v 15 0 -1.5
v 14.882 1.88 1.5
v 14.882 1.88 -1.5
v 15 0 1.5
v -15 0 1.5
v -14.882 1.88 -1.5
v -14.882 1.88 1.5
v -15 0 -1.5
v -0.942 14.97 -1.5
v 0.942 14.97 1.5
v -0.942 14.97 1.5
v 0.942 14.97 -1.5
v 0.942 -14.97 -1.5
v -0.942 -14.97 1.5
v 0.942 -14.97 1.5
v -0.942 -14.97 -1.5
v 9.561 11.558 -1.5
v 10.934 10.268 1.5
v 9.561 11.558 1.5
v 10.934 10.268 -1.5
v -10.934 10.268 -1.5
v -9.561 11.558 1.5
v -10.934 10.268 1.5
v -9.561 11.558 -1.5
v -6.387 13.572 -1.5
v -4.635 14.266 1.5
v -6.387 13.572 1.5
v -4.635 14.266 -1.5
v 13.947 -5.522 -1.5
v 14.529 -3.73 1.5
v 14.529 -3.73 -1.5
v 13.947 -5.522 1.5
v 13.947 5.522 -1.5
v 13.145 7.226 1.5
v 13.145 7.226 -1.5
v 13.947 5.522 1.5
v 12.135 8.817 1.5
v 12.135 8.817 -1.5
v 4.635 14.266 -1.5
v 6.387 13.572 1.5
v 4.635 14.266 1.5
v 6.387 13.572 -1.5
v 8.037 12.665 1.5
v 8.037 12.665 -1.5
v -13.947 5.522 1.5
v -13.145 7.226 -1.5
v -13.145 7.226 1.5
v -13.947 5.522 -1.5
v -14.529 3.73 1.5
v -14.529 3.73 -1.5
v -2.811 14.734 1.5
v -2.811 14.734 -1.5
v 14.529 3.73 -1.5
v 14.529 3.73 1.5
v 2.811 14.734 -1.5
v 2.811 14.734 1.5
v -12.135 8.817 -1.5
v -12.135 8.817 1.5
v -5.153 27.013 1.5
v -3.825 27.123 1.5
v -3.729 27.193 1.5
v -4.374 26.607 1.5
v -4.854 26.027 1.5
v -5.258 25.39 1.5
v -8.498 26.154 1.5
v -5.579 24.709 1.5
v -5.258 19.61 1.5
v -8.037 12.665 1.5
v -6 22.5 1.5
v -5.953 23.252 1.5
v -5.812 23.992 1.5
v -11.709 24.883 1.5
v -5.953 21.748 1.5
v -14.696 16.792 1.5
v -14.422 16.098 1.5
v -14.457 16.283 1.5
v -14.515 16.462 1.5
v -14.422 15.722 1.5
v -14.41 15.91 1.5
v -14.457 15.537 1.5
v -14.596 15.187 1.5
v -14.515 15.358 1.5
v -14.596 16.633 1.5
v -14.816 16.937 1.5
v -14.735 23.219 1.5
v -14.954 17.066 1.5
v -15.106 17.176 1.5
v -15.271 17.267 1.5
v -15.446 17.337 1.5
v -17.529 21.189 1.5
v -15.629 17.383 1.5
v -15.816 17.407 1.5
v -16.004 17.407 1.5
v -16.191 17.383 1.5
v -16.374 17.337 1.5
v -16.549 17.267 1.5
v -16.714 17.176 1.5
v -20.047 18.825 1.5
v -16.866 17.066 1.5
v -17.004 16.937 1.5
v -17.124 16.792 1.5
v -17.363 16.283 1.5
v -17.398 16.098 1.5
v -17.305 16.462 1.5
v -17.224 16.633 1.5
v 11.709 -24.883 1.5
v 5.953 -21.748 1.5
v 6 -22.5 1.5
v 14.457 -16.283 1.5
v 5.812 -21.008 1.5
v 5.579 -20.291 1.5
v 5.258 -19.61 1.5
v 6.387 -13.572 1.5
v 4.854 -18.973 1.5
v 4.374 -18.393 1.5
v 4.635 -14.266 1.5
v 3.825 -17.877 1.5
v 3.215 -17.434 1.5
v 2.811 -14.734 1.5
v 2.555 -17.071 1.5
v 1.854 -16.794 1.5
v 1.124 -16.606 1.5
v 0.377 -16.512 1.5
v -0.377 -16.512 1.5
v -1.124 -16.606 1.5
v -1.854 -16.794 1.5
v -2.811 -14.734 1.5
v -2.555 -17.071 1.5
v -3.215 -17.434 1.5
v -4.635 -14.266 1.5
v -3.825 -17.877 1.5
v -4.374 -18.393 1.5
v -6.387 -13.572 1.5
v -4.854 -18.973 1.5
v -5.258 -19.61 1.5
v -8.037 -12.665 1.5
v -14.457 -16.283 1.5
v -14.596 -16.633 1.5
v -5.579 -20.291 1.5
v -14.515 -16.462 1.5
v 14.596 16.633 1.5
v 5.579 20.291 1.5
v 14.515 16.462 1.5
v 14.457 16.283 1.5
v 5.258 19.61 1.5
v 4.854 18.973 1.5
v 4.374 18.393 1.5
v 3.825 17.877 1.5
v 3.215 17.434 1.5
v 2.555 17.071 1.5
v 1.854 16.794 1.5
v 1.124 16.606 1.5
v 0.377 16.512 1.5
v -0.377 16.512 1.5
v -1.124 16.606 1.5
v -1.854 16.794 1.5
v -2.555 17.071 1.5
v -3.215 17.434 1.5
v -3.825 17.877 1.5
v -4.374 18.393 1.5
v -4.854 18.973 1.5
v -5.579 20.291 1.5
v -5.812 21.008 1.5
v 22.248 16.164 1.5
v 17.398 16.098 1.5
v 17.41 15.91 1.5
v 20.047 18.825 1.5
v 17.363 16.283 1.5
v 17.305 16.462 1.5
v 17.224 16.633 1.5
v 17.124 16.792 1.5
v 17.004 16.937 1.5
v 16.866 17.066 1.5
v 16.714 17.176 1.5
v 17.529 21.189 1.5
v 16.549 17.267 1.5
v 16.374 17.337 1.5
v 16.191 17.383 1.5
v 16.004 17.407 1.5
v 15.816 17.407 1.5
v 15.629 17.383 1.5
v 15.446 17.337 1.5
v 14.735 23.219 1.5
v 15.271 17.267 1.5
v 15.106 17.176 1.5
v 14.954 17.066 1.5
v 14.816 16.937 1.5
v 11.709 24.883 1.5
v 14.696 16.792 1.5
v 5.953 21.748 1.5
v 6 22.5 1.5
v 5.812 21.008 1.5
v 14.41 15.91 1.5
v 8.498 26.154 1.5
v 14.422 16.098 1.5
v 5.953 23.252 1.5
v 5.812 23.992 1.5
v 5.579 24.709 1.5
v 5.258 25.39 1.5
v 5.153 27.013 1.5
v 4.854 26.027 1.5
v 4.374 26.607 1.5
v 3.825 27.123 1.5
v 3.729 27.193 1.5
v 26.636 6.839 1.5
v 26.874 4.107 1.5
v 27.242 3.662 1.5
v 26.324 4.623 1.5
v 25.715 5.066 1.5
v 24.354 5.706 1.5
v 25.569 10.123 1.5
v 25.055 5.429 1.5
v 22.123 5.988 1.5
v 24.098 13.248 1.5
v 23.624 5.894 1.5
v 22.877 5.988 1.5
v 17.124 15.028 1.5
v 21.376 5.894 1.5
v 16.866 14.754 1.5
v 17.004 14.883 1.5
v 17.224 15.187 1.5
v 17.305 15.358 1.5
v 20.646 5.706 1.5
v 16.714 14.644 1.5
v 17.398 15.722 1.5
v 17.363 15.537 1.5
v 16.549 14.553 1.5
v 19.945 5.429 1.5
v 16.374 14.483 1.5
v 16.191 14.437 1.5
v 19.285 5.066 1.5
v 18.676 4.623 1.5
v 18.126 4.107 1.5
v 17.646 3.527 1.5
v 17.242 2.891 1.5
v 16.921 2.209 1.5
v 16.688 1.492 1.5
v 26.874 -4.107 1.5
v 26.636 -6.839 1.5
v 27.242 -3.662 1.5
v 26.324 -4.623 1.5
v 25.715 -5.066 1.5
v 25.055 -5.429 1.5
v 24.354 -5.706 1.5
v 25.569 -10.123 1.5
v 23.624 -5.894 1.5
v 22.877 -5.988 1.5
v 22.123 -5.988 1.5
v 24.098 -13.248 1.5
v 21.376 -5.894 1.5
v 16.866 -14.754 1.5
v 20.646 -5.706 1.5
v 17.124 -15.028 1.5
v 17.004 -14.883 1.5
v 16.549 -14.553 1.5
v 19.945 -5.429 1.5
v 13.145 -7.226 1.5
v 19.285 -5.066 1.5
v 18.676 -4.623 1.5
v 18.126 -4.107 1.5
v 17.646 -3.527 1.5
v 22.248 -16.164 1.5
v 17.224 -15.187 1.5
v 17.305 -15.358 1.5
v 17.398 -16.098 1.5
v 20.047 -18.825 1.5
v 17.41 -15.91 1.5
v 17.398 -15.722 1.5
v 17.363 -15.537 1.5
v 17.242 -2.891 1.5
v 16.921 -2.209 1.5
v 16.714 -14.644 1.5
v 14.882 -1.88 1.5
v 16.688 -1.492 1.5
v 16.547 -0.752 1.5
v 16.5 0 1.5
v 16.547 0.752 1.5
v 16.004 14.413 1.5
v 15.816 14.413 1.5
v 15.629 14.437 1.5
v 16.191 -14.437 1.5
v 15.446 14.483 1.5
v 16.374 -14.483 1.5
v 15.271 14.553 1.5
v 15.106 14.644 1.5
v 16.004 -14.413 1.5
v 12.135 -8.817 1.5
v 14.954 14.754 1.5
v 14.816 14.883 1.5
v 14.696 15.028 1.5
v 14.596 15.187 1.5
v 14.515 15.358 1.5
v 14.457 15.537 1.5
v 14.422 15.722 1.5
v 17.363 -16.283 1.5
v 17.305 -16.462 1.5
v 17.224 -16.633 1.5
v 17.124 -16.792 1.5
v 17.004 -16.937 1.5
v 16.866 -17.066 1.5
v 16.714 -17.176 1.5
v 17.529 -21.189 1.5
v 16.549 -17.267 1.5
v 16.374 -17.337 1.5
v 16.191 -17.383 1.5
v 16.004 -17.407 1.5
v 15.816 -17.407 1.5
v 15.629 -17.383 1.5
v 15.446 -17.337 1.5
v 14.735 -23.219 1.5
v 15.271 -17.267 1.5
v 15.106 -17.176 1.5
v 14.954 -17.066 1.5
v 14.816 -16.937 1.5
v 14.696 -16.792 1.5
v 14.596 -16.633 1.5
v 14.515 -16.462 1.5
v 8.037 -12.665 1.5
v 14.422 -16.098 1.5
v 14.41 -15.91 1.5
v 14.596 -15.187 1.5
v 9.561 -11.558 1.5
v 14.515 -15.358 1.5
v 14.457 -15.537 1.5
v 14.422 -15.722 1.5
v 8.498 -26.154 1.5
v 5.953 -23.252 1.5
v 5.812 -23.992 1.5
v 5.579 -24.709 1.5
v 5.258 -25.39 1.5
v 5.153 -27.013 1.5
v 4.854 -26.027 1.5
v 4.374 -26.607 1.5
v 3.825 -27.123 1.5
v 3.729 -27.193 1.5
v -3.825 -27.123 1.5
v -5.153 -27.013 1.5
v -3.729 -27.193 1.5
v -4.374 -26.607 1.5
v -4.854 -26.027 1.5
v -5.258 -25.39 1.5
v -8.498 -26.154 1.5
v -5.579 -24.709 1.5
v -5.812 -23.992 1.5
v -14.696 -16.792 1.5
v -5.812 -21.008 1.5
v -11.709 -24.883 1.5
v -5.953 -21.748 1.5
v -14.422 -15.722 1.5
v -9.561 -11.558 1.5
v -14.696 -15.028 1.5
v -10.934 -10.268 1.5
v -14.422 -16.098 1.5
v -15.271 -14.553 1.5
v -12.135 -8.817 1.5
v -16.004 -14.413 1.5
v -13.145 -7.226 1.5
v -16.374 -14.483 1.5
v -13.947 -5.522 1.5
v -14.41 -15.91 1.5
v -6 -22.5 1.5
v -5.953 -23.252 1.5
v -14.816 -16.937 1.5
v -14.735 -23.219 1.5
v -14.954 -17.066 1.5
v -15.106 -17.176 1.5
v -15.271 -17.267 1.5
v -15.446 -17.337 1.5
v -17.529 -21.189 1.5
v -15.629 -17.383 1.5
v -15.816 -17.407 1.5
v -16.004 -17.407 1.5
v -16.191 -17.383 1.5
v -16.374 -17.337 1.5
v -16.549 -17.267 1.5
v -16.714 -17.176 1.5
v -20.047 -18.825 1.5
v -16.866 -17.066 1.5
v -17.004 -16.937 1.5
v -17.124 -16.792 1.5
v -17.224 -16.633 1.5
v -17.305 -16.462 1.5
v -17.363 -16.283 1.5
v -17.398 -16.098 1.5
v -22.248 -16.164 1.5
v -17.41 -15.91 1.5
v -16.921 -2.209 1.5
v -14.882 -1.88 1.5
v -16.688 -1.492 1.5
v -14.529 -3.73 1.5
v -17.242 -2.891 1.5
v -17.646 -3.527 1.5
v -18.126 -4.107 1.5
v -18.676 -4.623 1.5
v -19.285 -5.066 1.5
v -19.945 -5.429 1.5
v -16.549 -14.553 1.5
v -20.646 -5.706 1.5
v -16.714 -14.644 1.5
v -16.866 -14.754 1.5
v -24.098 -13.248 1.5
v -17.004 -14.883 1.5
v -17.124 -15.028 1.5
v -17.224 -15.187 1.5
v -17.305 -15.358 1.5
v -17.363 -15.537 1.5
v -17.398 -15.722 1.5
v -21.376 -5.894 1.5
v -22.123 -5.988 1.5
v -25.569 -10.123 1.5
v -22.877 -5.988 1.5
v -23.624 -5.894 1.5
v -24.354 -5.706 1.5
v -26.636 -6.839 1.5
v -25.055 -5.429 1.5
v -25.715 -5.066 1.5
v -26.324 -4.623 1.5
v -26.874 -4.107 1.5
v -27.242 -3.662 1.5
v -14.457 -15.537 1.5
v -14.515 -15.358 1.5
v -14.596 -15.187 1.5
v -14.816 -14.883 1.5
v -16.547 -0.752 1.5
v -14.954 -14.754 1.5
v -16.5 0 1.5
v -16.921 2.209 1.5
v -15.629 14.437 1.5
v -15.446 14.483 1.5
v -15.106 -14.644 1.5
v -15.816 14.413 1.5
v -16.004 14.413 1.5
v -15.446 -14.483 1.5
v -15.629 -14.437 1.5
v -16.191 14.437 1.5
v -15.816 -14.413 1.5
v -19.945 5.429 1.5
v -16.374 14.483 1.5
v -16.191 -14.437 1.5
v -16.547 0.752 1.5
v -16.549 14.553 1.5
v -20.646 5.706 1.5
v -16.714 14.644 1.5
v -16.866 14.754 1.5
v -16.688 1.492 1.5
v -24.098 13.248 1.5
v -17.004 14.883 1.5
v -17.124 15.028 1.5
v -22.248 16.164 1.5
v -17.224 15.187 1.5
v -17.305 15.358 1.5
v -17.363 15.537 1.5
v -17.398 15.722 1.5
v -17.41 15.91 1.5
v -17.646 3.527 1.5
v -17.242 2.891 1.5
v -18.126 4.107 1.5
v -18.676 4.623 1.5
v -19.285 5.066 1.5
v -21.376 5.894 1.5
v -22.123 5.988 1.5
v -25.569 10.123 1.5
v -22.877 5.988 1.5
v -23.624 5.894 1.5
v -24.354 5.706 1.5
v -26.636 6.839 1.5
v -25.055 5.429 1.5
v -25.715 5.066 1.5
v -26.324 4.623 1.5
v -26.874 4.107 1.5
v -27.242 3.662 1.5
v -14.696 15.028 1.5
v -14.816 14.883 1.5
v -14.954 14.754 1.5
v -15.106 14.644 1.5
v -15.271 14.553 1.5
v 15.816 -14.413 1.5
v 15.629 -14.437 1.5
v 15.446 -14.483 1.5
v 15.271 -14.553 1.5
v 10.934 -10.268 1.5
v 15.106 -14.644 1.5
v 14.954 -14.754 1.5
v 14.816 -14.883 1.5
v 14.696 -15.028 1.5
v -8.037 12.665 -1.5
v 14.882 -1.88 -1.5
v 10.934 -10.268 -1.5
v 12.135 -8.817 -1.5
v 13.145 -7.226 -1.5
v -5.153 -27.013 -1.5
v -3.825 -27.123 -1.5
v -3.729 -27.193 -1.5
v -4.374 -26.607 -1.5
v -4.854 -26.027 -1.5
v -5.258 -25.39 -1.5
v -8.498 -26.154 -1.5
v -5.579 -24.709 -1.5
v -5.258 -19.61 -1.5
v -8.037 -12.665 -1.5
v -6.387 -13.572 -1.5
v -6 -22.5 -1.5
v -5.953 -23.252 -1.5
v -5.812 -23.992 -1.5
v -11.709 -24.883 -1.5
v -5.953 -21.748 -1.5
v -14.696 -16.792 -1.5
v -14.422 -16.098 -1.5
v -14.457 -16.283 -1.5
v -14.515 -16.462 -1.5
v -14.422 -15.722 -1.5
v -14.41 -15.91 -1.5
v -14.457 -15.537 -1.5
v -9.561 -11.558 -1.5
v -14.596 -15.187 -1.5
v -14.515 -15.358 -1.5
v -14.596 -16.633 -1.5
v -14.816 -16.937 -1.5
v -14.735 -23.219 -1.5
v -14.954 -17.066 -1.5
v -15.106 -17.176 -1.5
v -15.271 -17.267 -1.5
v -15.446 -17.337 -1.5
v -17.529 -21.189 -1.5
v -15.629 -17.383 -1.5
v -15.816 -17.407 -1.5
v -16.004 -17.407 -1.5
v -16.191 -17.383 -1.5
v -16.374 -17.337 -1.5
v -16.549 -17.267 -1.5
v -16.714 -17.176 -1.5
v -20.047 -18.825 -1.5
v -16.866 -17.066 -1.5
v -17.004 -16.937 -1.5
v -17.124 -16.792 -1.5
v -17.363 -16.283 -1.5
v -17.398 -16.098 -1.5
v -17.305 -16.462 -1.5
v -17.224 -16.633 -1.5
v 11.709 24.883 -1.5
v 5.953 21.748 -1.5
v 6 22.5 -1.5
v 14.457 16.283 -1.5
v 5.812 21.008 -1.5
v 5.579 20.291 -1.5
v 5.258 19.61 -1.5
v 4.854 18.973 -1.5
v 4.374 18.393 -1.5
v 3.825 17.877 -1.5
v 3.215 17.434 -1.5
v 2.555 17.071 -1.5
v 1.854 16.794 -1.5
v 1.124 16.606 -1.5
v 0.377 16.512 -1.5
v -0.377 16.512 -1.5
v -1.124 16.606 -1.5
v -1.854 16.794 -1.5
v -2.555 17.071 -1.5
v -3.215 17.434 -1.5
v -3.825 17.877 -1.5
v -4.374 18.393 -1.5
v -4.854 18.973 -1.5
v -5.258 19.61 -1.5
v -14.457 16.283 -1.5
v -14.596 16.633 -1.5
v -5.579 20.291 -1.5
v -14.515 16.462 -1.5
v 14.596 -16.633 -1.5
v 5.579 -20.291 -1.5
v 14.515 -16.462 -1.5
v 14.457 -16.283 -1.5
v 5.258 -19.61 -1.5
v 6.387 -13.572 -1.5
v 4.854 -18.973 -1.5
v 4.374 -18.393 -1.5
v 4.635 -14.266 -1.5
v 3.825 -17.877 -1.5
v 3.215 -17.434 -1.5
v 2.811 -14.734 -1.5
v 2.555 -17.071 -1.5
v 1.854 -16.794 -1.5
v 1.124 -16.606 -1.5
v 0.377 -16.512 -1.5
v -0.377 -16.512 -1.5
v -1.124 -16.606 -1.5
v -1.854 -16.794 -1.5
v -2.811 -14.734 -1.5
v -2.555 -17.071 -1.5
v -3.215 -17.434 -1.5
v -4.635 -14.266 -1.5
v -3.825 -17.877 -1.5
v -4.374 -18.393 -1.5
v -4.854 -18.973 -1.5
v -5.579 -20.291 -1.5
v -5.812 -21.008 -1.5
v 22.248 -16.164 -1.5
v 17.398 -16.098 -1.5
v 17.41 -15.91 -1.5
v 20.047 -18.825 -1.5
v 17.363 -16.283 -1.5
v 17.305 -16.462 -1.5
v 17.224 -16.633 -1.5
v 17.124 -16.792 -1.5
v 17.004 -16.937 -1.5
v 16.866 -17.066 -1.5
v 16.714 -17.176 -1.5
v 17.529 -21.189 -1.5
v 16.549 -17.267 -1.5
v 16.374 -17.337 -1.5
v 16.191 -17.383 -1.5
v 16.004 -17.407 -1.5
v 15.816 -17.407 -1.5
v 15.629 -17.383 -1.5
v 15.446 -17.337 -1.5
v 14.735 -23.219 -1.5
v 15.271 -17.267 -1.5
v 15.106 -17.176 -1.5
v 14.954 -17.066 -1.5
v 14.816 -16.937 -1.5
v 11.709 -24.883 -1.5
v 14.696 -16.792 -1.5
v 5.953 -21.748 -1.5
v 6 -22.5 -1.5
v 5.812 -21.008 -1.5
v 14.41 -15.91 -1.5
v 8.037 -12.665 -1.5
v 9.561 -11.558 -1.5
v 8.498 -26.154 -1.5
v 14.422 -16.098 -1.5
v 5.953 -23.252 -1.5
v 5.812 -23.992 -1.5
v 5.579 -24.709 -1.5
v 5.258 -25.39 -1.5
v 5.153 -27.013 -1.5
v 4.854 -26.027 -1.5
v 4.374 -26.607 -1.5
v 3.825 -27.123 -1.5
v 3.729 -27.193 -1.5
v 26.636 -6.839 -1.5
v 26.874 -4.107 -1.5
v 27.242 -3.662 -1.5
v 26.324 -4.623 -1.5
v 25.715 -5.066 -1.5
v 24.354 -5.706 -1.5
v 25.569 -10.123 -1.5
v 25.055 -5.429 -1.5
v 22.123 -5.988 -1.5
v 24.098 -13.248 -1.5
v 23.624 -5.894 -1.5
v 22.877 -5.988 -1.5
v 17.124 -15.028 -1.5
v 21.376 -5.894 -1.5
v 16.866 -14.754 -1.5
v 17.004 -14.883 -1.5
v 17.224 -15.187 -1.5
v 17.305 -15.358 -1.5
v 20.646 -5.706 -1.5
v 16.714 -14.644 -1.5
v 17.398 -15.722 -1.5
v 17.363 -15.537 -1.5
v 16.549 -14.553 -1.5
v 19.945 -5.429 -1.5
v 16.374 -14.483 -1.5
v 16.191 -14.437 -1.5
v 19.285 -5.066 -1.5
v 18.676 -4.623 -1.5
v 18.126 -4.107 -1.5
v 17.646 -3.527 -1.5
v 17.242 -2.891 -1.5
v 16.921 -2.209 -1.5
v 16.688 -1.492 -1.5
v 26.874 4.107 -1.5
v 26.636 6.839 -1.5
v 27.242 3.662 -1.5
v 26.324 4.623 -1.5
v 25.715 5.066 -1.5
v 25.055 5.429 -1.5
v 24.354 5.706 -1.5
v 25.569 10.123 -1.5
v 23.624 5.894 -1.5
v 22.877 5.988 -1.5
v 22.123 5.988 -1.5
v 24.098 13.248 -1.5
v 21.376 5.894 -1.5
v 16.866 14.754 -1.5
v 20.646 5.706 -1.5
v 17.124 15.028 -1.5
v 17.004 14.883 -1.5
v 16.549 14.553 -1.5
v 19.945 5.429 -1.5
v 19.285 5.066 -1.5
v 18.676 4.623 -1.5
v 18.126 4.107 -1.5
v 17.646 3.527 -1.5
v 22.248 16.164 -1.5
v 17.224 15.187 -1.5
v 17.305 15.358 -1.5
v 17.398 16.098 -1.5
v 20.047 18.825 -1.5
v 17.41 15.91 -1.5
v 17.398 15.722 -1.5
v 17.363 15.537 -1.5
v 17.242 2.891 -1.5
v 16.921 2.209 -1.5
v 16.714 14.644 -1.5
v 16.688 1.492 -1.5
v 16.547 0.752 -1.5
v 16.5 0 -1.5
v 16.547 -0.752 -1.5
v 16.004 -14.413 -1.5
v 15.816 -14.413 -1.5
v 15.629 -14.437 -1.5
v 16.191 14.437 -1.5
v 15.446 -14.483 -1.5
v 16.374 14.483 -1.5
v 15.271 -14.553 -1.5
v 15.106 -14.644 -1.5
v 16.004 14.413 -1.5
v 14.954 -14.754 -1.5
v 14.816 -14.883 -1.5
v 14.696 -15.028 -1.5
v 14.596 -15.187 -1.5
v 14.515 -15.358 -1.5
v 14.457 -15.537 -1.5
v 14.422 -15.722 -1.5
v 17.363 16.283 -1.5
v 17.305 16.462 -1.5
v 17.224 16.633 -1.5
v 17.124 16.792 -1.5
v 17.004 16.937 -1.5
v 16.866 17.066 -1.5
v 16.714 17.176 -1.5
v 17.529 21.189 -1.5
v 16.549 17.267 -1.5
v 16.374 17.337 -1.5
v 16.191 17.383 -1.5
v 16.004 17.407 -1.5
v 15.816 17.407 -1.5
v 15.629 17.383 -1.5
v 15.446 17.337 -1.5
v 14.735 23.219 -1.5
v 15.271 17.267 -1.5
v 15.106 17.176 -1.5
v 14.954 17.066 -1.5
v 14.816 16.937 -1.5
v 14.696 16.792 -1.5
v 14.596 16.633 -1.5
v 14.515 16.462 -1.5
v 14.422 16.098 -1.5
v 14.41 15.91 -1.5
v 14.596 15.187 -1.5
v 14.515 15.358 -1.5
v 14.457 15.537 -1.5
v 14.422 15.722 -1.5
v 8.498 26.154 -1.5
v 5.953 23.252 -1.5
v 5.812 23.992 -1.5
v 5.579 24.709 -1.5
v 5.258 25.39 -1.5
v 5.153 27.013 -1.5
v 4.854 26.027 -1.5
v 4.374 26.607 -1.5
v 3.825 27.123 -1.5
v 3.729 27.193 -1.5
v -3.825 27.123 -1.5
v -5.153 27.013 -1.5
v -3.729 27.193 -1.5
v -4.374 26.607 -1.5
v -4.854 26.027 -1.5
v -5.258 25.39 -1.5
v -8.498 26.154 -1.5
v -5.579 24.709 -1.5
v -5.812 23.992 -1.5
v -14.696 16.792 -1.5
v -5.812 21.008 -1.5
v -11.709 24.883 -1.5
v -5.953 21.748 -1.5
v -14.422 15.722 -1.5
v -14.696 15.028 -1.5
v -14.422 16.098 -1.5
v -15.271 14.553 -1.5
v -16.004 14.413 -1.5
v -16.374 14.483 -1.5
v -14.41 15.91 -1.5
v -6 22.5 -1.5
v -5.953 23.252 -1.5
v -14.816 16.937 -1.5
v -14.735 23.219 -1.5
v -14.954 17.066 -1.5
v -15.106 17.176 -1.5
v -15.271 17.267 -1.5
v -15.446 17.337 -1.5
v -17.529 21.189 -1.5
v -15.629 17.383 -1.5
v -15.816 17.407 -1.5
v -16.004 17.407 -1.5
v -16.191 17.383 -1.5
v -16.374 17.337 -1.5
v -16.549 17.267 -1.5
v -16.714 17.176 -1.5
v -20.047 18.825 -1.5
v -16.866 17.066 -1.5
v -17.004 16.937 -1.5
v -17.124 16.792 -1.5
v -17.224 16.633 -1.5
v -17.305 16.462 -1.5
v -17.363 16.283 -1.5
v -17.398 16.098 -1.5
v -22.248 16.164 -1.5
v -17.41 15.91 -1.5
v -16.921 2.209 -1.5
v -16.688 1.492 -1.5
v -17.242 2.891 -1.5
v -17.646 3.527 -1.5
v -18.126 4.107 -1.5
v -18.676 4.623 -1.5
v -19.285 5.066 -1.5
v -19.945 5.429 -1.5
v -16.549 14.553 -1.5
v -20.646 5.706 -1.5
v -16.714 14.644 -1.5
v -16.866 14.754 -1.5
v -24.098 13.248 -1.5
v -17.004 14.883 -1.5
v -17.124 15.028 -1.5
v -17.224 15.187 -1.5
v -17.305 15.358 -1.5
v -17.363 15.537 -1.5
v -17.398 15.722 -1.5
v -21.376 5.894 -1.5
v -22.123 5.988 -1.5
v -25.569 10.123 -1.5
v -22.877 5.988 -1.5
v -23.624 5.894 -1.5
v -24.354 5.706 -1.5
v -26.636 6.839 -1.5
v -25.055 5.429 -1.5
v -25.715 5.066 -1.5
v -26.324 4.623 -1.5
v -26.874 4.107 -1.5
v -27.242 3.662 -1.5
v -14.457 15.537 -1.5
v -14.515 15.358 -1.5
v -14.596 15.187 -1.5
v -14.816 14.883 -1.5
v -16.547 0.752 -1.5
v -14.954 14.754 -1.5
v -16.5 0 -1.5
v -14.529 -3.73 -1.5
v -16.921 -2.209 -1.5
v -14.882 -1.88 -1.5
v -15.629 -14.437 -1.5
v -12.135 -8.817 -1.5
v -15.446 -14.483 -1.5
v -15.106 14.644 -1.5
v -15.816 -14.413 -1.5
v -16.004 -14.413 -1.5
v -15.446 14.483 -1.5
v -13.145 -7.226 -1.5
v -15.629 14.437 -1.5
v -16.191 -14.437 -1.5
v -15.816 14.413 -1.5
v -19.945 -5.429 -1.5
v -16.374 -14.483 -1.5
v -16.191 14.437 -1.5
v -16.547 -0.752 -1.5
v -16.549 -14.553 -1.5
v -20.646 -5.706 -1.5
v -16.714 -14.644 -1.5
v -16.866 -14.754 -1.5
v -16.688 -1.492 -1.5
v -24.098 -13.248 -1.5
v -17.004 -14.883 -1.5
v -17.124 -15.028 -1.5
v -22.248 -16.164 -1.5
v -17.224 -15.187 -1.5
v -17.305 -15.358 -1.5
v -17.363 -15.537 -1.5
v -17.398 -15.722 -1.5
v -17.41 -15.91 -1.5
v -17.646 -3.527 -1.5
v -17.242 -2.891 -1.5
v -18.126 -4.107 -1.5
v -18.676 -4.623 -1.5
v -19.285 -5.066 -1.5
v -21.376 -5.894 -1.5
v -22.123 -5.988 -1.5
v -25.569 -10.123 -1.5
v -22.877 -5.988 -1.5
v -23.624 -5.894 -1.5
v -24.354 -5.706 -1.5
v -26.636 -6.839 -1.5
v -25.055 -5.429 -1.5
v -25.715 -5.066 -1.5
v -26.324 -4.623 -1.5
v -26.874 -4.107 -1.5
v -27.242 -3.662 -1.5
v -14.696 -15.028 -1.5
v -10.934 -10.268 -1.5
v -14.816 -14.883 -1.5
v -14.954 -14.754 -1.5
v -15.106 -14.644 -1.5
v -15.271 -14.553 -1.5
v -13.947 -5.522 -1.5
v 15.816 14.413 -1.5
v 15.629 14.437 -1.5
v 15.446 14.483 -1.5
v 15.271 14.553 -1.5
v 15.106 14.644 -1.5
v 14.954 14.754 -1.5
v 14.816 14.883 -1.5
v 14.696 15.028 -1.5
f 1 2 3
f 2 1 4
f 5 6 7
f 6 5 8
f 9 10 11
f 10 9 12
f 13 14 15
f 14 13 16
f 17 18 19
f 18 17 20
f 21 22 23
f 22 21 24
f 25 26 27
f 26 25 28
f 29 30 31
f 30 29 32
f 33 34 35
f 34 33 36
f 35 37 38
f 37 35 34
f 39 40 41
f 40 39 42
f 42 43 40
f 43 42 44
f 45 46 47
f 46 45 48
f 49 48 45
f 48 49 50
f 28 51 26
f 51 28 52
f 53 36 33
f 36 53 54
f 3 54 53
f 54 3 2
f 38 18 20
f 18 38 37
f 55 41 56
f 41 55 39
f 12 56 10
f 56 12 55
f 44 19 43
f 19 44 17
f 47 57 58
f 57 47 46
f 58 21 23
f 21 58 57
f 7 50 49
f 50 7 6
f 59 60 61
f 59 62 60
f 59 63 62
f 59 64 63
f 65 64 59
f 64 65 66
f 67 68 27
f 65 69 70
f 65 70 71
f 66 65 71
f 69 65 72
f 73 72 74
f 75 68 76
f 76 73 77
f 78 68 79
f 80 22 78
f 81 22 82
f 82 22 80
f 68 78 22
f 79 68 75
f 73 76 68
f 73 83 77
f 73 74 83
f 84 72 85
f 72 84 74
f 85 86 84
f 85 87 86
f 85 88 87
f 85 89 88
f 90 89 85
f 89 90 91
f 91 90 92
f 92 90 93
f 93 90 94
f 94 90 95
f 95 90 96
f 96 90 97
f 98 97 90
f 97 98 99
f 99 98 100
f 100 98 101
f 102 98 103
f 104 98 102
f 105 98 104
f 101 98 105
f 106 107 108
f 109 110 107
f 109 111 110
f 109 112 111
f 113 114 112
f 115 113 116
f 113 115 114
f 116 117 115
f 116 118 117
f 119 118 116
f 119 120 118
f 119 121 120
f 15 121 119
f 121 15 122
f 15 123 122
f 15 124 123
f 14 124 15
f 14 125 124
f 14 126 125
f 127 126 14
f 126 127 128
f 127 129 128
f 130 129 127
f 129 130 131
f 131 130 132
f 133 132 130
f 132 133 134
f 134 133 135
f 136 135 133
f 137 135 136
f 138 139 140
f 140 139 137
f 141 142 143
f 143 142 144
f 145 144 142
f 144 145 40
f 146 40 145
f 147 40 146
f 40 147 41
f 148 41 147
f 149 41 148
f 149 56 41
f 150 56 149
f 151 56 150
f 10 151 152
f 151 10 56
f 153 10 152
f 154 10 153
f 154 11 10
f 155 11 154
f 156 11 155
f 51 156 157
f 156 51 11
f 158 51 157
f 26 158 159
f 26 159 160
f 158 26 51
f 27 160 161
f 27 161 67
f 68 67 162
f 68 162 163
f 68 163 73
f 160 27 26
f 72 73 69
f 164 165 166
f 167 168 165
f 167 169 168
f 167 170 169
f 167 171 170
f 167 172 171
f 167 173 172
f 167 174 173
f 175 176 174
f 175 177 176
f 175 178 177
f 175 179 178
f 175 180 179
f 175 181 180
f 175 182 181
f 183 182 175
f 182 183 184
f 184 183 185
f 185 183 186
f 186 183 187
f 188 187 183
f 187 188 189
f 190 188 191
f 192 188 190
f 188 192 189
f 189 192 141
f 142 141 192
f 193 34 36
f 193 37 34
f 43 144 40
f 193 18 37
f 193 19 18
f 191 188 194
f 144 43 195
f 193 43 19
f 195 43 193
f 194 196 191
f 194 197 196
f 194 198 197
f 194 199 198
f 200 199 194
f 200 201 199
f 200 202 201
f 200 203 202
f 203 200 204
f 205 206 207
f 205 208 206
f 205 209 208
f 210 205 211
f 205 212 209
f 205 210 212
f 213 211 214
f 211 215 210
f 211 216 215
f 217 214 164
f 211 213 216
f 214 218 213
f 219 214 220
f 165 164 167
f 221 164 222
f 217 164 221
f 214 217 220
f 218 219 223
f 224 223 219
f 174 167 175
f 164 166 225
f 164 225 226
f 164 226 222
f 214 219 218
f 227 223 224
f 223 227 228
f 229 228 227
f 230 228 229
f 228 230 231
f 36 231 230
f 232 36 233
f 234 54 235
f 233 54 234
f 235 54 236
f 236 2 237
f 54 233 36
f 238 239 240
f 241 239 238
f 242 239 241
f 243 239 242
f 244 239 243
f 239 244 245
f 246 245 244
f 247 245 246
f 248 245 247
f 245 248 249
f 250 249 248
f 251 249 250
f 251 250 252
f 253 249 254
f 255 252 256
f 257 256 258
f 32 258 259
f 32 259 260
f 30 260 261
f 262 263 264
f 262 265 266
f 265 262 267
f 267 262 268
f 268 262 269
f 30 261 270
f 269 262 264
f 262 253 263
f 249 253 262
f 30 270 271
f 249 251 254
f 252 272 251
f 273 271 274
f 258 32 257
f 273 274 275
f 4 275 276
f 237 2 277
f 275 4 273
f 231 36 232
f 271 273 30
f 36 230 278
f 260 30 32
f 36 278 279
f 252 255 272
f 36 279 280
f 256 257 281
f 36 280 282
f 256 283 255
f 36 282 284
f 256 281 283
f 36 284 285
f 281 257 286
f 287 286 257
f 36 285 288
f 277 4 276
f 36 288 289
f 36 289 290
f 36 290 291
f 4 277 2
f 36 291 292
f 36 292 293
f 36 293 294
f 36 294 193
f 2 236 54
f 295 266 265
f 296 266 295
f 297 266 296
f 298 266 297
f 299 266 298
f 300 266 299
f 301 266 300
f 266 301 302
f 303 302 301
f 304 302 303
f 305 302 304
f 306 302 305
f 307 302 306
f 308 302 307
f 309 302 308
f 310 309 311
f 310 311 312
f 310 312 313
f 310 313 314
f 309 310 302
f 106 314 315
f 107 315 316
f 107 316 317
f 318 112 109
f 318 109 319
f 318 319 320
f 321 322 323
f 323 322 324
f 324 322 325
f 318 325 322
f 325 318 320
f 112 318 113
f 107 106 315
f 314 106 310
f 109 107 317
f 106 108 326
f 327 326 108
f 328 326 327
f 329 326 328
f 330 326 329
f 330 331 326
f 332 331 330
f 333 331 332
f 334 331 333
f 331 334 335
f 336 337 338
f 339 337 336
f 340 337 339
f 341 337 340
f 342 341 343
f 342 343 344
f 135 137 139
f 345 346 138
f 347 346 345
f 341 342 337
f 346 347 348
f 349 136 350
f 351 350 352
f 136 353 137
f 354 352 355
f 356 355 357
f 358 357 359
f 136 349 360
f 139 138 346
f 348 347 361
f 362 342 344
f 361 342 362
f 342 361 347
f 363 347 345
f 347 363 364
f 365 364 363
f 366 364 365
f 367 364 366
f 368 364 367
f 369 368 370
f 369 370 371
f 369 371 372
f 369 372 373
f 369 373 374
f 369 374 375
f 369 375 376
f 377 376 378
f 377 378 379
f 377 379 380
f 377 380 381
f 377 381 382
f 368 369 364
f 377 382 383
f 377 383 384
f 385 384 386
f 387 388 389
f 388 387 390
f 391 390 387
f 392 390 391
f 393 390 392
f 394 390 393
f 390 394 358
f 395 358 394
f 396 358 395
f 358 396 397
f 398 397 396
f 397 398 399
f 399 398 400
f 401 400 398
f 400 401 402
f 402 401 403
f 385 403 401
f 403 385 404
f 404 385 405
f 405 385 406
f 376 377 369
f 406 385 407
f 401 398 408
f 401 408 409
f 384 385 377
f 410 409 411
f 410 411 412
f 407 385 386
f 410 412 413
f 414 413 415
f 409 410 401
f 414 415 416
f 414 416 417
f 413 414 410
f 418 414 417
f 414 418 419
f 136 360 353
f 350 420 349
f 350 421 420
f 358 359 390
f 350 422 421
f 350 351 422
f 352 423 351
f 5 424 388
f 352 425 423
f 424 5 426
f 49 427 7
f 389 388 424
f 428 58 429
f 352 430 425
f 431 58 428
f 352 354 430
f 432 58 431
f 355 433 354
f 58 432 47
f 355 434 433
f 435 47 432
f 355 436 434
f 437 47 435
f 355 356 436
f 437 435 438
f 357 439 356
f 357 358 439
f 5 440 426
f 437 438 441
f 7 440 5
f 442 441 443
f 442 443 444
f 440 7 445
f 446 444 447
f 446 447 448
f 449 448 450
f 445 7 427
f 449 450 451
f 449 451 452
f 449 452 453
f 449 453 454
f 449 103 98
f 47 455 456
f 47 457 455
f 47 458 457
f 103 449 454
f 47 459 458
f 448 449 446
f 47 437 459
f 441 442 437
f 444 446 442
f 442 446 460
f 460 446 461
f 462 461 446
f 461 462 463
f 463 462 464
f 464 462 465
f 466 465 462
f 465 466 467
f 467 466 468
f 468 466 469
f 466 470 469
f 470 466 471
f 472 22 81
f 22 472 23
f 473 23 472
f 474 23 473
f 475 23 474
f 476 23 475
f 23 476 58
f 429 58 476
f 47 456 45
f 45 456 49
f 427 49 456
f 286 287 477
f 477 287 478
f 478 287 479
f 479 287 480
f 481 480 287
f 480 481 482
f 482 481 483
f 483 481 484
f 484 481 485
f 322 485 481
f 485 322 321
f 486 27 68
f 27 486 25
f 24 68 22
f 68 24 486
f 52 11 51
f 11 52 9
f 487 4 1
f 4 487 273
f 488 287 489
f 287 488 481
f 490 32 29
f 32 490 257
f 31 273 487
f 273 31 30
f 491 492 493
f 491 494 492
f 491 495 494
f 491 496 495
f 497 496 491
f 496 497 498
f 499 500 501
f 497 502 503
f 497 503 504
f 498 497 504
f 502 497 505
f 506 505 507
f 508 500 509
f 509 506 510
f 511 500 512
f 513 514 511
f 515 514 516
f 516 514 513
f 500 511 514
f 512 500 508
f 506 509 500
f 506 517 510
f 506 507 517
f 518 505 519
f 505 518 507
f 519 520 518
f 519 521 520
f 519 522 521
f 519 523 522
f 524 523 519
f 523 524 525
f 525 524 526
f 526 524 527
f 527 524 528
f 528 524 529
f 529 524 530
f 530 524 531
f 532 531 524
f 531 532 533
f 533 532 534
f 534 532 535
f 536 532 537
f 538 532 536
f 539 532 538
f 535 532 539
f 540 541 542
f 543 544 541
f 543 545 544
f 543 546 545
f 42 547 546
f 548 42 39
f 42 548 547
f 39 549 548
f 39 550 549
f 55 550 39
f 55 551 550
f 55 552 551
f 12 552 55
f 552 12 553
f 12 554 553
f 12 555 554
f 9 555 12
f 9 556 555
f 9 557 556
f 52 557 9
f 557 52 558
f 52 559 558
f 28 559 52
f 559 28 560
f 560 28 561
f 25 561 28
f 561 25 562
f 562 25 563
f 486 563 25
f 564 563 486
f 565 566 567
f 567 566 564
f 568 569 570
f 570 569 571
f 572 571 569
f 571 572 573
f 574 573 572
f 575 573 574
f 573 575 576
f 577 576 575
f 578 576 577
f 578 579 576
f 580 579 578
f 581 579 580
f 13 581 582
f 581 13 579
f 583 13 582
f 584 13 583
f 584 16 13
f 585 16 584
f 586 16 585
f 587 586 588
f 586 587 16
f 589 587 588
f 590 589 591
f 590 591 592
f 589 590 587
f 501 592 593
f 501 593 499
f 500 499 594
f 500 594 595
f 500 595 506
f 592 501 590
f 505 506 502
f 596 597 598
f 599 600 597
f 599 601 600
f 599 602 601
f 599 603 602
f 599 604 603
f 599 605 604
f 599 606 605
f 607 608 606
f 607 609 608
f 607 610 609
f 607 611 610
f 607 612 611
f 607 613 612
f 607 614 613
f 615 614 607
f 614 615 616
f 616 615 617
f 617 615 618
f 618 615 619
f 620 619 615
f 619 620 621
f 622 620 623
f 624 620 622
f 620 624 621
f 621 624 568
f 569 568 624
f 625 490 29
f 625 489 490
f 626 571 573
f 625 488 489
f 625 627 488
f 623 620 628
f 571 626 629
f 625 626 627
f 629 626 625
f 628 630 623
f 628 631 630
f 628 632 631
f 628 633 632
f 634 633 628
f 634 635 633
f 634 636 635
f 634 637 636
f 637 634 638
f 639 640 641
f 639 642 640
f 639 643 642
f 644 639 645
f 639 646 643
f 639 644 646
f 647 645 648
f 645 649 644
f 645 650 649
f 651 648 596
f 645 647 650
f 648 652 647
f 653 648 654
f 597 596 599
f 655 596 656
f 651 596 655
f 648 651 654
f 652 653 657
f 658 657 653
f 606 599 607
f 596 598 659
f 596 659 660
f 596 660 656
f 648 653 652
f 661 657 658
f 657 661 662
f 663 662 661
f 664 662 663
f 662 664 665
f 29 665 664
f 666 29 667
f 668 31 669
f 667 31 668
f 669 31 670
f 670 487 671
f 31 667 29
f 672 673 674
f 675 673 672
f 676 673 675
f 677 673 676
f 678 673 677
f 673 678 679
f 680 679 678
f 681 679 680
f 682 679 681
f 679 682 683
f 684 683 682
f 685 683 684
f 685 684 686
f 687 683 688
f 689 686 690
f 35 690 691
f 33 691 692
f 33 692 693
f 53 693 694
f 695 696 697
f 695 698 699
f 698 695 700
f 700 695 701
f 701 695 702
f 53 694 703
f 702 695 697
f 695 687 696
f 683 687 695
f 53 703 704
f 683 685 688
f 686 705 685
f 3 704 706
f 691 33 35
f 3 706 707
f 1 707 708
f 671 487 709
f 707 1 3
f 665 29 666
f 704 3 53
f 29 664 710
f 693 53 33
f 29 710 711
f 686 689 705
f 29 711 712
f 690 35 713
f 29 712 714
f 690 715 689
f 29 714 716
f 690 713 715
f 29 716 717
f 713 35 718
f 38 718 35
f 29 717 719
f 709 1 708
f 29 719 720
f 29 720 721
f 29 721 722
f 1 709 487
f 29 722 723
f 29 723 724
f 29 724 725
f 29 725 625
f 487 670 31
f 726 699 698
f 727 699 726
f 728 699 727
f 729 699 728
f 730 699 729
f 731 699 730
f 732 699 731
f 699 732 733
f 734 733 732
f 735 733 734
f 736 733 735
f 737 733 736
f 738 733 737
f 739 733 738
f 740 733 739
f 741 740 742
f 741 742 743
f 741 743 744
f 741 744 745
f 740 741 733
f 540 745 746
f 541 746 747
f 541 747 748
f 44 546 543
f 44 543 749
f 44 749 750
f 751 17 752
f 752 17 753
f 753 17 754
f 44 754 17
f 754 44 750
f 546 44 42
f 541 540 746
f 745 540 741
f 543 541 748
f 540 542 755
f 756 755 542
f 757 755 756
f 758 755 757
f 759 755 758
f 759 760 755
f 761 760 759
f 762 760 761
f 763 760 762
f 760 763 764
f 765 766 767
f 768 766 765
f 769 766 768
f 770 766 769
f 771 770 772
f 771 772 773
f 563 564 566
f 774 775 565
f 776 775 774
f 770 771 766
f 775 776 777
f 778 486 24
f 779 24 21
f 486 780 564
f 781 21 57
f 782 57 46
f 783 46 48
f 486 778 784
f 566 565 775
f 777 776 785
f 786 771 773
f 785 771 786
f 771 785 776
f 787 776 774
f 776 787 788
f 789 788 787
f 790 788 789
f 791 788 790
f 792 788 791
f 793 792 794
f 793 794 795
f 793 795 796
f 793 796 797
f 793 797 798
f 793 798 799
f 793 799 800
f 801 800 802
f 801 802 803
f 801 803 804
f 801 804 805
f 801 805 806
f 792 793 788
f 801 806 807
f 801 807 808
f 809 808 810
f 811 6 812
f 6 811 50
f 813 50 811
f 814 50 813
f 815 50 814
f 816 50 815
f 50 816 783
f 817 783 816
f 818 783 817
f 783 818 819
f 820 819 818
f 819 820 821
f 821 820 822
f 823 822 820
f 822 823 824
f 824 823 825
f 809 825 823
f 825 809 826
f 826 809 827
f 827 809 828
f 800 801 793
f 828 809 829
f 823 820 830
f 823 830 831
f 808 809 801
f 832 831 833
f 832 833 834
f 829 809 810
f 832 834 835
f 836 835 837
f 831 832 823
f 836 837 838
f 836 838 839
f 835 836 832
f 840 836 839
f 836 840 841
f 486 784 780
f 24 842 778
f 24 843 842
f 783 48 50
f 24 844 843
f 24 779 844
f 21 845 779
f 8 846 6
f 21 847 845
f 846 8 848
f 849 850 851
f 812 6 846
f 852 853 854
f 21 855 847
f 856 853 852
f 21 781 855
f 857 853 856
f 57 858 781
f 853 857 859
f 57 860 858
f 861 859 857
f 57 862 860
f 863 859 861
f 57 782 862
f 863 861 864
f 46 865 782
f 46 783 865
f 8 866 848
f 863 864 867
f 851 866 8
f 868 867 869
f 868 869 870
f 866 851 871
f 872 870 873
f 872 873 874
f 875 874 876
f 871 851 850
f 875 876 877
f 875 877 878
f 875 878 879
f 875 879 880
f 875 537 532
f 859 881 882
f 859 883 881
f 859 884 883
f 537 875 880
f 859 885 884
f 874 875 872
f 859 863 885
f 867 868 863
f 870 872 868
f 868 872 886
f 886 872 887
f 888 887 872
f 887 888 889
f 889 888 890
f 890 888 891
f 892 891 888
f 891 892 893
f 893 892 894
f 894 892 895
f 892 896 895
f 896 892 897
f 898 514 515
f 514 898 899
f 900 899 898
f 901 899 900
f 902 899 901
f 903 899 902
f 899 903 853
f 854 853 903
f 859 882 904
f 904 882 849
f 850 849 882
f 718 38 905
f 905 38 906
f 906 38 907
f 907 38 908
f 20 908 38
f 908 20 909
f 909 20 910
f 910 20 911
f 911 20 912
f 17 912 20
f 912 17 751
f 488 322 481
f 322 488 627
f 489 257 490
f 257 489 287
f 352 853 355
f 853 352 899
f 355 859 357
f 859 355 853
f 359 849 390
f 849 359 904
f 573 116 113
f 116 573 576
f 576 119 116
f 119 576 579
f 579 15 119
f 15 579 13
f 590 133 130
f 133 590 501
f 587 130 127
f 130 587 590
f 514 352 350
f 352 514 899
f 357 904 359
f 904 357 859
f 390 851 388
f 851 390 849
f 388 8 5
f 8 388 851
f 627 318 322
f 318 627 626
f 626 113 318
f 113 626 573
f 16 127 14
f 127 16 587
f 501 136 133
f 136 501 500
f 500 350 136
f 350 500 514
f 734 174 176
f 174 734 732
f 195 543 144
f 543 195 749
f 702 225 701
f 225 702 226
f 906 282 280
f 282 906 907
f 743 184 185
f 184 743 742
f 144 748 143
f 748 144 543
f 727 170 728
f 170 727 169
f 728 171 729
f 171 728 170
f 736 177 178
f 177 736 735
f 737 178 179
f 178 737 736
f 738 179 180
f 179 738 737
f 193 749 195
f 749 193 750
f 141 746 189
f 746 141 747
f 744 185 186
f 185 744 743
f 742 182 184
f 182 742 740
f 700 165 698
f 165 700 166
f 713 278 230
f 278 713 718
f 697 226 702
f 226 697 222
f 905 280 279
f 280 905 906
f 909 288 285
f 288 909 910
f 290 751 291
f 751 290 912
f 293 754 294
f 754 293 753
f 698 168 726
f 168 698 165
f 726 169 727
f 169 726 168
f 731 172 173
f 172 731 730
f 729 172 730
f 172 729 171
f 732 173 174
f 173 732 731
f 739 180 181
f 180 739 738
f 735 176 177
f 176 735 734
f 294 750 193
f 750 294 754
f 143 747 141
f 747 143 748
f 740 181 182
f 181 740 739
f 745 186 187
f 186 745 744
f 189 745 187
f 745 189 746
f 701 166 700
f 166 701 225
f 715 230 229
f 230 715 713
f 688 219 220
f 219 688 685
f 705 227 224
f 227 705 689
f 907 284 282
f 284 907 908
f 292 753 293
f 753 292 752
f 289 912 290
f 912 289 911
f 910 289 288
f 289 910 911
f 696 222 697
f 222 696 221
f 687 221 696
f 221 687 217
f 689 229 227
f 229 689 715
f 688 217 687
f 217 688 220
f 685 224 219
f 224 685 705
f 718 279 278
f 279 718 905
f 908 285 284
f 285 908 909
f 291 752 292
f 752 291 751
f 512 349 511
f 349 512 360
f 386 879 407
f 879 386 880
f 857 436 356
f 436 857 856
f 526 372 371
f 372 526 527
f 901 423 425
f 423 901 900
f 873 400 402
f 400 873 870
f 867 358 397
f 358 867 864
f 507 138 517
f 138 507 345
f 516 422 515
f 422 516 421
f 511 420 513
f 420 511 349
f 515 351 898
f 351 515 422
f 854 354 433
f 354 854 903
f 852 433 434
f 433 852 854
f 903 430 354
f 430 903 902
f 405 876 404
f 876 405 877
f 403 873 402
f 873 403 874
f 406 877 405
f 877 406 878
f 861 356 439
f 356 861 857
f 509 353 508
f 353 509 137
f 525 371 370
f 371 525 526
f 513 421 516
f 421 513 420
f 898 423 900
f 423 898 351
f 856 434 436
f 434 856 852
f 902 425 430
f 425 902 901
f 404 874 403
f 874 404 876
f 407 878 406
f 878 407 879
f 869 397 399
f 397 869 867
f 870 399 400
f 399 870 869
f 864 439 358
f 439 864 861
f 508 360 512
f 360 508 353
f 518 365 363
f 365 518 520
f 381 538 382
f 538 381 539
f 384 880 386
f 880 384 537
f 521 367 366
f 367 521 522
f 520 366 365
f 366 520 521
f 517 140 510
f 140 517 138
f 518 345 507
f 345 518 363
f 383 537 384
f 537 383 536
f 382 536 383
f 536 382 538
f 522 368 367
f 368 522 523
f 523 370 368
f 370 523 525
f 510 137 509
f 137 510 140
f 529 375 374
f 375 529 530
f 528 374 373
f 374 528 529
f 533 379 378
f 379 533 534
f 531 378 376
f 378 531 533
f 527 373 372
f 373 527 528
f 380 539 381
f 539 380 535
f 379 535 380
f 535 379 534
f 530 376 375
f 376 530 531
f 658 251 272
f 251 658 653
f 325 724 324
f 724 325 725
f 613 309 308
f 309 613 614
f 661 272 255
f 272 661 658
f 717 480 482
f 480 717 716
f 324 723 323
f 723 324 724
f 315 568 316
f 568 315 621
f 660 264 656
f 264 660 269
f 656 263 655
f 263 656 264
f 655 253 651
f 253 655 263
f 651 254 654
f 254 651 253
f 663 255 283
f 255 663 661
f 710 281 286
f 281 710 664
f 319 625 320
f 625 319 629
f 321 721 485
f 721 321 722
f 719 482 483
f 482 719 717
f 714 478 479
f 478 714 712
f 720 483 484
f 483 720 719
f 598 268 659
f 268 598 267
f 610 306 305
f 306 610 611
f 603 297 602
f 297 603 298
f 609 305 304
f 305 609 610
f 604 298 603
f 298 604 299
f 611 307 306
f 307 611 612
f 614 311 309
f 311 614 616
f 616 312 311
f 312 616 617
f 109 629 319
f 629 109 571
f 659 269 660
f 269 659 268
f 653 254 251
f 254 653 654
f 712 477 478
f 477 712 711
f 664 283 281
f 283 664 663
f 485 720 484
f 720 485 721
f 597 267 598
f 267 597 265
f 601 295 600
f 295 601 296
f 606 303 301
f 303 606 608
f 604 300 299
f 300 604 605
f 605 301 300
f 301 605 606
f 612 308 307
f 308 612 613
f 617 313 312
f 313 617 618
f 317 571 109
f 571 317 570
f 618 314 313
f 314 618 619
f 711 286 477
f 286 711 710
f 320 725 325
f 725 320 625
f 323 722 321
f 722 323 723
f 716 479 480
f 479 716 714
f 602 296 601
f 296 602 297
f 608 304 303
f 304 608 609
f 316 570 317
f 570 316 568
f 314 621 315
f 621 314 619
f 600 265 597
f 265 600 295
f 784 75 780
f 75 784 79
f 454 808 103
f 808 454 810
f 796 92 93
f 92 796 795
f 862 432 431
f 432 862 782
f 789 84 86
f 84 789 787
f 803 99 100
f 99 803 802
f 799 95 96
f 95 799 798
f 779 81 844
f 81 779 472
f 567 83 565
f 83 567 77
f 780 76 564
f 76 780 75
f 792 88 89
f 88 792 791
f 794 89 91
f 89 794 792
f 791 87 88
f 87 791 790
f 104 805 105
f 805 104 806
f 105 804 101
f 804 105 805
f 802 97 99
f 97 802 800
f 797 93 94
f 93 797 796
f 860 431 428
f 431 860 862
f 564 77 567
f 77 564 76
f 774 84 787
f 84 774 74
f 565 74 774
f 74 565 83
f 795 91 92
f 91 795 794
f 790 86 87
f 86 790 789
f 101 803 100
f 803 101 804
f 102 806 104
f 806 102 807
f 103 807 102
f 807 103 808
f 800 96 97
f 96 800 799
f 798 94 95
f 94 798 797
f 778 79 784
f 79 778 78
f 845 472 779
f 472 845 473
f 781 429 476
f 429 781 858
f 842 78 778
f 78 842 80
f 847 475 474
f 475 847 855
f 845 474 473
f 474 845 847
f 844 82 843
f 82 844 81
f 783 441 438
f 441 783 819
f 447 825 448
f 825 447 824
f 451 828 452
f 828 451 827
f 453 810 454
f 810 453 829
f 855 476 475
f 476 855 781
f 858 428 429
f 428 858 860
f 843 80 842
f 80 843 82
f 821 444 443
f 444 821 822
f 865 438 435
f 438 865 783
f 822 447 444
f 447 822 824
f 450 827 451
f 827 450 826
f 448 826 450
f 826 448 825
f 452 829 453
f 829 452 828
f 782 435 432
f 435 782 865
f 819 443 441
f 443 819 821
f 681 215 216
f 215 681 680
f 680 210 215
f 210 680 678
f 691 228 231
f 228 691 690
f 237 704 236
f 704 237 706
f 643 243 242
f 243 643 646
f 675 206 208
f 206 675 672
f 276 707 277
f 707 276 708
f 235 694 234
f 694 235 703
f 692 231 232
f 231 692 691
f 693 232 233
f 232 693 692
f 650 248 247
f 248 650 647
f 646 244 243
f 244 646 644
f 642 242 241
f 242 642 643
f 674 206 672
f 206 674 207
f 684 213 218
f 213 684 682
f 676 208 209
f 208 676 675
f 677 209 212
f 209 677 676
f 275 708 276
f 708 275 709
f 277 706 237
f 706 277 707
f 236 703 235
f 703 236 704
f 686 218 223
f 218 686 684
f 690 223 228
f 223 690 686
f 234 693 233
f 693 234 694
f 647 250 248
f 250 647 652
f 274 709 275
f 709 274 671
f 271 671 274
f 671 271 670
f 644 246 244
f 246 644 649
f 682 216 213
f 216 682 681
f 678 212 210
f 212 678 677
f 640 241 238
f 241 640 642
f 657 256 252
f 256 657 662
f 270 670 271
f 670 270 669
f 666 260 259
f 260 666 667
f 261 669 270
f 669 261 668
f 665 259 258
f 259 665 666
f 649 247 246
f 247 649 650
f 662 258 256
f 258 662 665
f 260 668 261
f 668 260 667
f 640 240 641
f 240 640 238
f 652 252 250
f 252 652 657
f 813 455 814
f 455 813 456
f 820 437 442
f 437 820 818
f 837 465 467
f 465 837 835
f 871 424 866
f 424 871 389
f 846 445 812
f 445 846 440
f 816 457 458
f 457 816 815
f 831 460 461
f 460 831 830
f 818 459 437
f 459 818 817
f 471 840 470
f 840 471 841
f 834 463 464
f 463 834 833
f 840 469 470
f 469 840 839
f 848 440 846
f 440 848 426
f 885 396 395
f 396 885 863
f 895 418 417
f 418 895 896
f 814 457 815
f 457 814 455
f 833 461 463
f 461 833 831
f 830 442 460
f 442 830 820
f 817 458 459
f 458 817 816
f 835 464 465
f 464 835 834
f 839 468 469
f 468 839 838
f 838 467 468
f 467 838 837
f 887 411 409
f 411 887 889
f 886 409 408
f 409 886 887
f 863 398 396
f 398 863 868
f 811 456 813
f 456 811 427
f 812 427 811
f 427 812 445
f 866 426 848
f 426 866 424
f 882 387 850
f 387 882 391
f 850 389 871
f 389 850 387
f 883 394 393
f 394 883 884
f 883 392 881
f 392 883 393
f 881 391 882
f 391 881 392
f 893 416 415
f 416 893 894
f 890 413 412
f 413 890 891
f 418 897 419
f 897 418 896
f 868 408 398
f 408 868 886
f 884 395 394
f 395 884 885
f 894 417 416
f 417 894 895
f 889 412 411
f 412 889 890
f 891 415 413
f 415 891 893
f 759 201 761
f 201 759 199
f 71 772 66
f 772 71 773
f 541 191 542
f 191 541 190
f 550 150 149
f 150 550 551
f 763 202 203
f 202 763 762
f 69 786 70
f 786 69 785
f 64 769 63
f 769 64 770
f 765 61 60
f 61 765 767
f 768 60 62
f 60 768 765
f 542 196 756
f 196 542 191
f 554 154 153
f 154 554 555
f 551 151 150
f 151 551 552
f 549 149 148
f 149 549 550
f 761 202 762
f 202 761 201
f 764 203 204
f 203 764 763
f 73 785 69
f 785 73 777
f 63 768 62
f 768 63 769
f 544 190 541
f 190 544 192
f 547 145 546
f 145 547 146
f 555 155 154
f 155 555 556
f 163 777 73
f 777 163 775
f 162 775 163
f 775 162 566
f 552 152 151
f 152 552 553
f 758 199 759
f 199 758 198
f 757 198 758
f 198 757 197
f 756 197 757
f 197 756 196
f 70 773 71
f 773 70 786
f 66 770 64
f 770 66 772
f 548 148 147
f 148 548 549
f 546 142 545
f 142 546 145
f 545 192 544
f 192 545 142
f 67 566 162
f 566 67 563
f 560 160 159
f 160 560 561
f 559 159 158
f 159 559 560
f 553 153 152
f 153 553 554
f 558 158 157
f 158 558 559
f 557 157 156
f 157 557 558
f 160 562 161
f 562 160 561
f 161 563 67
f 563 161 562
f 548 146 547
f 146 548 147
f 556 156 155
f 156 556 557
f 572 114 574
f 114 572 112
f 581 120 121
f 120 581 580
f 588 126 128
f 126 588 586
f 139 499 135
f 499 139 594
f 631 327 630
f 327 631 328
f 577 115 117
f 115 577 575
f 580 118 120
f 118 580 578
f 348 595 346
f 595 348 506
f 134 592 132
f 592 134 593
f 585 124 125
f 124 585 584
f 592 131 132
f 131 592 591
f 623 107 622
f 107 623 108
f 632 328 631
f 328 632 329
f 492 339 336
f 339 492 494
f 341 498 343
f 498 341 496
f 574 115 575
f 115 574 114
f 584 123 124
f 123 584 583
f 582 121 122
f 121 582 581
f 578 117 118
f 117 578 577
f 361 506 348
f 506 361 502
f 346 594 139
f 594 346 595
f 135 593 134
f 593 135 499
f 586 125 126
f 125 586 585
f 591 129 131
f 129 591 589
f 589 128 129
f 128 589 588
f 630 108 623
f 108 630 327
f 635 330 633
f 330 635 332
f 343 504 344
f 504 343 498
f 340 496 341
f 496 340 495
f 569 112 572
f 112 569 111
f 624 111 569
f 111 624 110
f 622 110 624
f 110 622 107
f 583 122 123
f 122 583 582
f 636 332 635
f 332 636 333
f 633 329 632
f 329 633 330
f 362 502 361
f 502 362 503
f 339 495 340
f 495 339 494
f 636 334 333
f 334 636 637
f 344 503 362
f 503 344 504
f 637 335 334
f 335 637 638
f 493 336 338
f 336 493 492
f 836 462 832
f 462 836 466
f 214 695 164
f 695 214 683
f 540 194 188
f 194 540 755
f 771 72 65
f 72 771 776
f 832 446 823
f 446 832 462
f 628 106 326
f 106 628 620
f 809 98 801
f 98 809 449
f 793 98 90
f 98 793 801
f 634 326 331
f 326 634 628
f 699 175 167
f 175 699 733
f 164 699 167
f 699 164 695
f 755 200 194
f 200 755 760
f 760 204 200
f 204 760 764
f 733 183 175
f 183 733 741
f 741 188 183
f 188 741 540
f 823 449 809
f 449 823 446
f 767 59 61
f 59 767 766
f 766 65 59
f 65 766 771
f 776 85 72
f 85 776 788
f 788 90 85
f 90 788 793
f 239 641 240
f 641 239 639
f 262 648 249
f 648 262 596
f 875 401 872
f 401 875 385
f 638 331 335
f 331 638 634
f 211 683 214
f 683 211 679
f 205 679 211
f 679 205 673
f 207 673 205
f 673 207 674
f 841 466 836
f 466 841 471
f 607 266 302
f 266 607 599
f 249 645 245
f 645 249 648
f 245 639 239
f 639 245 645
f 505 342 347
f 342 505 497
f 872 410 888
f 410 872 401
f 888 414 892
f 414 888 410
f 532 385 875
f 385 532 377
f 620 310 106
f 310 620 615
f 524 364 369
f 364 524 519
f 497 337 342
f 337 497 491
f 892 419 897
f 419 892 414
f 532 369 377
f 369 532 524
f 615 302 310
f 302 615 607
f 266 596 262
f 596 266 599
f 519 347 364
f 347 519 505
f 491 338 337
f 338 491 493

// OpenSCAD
$fn = 50;


difference() {
	union() {
		translate(v = [0, 0, -1.5000000000]) {
			cylinder(h = 3, r = 27.5000000000);
		}
	}
	union() {
		translate(v = [0, 0, -1.5000000000]) {
			cylinder(h = 3, r = 15.0000000000);
		}
		translate(v = [15.9100000000, 15.9100000000, -47.0000000000]) {
			cylinder(h = 100, r = 1.5000000000);
		}
		translate(v = [-15.9100000000, -15.9100000000, -47.0000000000]) {
			cylinder(h = 100, r = 1.5000000000);
		}
		translate(v = [15.9100000000, -15.9100000000, -47.0000000000]) {
			cylinder(h = 100, r = 1.5000000000);
		}
		translate(v = [-15.9100000000, 15.9100000000, -47.0000000000]) {
			cylinder(h = 100, r = 1.5000000000);
		}
		translate(v = [22.5000000000, 0, -47.0000000000]) {
			cylinder(h = 100, r = 6.0000000000);
		}
		translate(v = [-22.5000000000, 0, -47.0000000000]) {
			cylinder(h = 100, r = 6.0000000000);
		}
		translate(v = [0, 22.5000000000, -47.0000000000]) {
			cylinder(h = 100, r = 6.0000000000);
		}
		translate(v = [0, -22.5000000000, -47.0000000000]) {
			cylinder(h = 100, r = 6.0000000000);
		}
	}
}
